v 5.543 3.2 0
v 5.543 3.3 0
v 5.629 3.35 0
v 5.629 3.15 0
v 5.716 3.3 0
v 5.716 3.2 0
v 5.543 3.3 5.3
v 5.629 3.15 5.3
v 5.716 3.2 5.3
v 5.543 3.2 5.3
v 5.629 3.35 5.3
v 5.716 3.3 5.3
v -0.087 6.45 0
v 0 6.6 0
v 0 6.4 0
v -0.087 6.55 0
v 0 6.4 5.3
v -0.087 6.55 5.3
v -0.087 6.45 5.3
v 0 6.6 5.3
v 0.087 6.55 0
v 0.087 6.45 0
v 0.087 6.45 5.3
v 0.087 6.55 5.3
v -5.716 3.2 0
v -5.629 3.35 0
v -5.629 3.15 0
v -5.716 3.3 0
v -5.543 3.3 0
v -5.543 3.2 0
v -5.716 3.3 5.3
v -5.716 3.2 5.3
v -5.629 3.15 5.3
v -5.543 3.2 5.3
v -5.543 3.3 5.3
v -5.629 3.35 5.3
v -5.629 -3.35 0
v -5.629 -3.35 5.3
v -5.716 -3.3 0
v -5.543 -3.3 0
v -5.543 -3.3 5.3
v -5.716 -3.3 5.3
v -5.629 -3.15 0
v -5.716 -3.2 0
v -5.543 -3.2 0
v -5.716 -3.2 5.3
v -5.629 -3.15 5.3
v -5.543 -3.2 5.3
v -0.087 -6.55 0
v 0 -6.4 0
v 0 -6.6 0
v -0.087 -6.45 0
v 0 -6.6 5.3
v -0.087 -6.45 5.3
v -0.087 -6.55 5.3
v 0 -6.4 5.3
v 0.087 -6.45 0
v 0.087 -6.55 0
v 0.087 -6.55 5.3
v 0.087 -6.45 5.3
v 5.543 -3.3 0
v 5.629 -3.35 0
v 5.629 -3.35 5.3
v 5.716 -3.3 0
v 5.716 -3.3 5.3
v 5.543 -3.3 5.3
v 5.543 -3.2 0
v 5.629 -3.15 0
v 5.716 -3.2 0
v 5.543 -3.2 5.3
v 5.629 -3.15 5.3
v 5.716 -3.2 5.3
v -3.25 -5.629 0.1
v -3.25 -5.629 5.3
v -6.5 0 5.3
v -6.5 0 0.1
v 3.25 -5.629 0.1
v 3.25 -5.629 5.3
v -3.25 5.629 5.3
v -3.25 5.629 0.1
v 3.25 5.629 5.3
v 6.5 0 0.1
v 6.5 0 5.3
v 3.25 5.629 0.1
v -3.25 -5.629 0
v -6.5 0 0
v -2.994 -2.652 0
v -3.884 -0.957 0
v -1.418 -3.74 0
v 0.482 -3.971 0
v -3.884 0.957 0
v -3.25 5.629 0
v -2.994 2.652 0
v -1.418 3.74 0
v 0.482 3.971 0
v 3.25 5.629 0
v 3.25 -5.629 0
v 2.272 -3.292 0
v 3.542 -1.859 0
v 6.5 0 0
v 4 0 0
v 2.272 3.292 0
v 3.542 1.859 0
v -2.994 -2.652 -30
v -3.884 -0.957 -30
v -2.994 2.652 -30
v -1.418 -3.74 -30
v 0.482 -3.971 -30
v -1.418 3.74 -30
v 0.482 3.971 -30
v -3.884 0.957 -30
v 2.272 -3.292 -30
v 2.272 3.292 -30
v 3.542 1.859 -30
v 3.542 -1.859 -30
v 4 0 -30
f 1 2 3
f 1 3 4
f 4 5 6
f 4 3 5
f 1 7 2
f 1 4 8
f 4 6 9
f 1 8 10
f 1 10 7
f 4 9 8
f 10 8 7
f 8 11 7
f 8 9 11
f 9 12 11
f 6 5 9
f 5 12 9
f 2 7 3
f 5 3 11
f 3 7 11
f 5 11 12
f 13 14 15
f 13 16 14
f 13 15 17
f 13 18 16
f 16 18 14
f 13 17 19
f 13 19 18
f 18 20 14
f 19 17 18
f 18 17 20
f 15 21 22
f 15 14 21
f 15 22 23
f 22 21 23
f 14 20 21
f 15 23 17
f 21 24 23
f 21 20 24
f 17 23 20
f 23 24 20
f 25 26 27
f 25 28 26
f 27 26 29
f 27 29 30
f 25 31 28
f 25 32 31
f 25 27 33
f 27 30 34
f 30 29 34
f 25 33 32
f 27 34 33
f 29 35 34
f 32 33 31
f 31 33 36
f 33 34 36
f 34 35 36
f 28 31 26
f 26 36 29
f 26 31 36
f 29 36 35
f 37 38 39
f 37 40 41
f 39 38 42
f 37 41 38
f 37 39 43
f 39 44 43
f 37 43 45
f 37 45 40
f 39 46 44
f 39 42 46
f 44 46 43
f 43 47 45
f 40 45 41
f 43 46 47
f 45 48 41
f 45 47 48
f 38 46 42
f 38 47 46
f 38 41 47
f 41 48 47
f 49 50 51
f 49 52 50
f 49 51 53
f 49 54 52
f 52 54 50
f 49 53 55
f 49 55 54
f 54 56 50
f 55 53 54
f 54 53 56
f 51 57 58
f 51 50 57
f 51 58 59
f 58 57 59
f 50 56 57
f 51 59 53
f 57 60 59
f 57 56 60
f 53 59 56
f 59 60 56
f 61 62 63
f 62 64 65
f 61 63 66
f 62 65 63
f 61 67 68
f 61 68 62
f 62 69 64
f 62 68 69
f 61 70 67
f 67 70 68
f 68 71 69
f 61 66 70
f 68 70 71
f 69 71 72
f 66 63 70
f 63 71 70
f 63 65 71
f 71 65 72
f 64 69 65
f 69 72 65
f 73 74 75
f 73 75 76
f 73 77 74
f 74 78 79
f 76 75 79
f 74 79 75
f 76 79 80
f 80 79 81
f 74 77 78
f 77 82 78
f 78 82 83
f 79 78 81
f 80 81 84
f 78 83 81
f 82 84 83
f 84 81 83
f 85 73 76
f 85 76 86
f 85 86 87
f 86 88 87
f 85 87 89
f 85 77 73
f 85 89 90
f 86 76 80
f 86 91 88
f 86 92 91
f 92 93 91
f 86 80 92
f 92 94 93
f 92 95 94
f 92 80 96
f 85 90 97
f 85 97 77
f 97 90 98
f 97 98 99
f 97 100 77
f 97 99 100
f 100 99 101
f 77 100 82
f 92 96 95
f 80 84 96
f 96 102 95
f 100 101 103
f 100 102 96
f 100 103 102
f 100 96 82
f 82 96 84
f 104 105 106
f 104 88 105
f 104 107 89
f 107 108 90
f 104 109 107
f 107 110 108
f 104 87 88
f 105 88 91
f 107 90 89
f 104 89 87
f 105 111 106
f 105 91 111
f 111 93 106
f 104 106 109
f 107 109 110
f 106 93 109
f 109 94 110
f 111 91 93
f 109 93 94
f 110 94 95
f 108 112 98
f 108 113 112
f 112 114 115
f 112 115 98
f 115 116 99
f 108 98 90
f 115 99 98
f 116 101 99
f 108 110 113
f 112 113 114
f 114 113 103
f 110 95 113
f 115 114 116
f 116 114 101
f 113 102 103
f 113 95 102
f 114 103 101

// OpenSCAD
// M8 Hex Bolt (shank only)

module bolt() {
    // Bolt head
    head_across_flats = 13;
    head_height = 5.3;

    // Shank
    shank_diameter = 8;
    shank_length = 30;

    // Hex head using hull and cylinders
    // The angle of rotation for each face is calculated
    // For a hexagon, 360 degrees / 6 faces = 60 degrees per face
    // We need to rotate by half of that to center the faces on the axes
    hex_radius = head_across_flats / 2;
    difference() {
        union() {
            // Create a cylinder for the top surface of the head
            cylinder(h = head_height, r = hex_radius, $fn = 6);
            // Create the hexagonal sides by rotating and hulling cylinders
            for (i = [0:5]) {
                rotate([0, 0, i * 60 + 30]) { // Rotate to center faces on axes
                    translate([hex_radius, 0, 0]) {
                        cylinder(h = head_height, r = 0.1, $fn = 6); // Tiny cylinder to define the edge
                    }
                }
            }
            // Create the base of the head using a cylinder
            cylinder(h = 0.1, r = hex_radius, $fn = 6); // Thin cylinder for the base
        }
        // Chamfer the top edge of the hex head slightly (optional but realistic)
        // You can adjust this or remove it if not needed.
        // For simplicity, we'll omit chamfering here to strictly follow the prompt.
    }


    // Shank
    translate([0, 0, -shank_length]) {
        cylinder(h = shank_length, d = shank_diameter);
    }
}

bolt();
